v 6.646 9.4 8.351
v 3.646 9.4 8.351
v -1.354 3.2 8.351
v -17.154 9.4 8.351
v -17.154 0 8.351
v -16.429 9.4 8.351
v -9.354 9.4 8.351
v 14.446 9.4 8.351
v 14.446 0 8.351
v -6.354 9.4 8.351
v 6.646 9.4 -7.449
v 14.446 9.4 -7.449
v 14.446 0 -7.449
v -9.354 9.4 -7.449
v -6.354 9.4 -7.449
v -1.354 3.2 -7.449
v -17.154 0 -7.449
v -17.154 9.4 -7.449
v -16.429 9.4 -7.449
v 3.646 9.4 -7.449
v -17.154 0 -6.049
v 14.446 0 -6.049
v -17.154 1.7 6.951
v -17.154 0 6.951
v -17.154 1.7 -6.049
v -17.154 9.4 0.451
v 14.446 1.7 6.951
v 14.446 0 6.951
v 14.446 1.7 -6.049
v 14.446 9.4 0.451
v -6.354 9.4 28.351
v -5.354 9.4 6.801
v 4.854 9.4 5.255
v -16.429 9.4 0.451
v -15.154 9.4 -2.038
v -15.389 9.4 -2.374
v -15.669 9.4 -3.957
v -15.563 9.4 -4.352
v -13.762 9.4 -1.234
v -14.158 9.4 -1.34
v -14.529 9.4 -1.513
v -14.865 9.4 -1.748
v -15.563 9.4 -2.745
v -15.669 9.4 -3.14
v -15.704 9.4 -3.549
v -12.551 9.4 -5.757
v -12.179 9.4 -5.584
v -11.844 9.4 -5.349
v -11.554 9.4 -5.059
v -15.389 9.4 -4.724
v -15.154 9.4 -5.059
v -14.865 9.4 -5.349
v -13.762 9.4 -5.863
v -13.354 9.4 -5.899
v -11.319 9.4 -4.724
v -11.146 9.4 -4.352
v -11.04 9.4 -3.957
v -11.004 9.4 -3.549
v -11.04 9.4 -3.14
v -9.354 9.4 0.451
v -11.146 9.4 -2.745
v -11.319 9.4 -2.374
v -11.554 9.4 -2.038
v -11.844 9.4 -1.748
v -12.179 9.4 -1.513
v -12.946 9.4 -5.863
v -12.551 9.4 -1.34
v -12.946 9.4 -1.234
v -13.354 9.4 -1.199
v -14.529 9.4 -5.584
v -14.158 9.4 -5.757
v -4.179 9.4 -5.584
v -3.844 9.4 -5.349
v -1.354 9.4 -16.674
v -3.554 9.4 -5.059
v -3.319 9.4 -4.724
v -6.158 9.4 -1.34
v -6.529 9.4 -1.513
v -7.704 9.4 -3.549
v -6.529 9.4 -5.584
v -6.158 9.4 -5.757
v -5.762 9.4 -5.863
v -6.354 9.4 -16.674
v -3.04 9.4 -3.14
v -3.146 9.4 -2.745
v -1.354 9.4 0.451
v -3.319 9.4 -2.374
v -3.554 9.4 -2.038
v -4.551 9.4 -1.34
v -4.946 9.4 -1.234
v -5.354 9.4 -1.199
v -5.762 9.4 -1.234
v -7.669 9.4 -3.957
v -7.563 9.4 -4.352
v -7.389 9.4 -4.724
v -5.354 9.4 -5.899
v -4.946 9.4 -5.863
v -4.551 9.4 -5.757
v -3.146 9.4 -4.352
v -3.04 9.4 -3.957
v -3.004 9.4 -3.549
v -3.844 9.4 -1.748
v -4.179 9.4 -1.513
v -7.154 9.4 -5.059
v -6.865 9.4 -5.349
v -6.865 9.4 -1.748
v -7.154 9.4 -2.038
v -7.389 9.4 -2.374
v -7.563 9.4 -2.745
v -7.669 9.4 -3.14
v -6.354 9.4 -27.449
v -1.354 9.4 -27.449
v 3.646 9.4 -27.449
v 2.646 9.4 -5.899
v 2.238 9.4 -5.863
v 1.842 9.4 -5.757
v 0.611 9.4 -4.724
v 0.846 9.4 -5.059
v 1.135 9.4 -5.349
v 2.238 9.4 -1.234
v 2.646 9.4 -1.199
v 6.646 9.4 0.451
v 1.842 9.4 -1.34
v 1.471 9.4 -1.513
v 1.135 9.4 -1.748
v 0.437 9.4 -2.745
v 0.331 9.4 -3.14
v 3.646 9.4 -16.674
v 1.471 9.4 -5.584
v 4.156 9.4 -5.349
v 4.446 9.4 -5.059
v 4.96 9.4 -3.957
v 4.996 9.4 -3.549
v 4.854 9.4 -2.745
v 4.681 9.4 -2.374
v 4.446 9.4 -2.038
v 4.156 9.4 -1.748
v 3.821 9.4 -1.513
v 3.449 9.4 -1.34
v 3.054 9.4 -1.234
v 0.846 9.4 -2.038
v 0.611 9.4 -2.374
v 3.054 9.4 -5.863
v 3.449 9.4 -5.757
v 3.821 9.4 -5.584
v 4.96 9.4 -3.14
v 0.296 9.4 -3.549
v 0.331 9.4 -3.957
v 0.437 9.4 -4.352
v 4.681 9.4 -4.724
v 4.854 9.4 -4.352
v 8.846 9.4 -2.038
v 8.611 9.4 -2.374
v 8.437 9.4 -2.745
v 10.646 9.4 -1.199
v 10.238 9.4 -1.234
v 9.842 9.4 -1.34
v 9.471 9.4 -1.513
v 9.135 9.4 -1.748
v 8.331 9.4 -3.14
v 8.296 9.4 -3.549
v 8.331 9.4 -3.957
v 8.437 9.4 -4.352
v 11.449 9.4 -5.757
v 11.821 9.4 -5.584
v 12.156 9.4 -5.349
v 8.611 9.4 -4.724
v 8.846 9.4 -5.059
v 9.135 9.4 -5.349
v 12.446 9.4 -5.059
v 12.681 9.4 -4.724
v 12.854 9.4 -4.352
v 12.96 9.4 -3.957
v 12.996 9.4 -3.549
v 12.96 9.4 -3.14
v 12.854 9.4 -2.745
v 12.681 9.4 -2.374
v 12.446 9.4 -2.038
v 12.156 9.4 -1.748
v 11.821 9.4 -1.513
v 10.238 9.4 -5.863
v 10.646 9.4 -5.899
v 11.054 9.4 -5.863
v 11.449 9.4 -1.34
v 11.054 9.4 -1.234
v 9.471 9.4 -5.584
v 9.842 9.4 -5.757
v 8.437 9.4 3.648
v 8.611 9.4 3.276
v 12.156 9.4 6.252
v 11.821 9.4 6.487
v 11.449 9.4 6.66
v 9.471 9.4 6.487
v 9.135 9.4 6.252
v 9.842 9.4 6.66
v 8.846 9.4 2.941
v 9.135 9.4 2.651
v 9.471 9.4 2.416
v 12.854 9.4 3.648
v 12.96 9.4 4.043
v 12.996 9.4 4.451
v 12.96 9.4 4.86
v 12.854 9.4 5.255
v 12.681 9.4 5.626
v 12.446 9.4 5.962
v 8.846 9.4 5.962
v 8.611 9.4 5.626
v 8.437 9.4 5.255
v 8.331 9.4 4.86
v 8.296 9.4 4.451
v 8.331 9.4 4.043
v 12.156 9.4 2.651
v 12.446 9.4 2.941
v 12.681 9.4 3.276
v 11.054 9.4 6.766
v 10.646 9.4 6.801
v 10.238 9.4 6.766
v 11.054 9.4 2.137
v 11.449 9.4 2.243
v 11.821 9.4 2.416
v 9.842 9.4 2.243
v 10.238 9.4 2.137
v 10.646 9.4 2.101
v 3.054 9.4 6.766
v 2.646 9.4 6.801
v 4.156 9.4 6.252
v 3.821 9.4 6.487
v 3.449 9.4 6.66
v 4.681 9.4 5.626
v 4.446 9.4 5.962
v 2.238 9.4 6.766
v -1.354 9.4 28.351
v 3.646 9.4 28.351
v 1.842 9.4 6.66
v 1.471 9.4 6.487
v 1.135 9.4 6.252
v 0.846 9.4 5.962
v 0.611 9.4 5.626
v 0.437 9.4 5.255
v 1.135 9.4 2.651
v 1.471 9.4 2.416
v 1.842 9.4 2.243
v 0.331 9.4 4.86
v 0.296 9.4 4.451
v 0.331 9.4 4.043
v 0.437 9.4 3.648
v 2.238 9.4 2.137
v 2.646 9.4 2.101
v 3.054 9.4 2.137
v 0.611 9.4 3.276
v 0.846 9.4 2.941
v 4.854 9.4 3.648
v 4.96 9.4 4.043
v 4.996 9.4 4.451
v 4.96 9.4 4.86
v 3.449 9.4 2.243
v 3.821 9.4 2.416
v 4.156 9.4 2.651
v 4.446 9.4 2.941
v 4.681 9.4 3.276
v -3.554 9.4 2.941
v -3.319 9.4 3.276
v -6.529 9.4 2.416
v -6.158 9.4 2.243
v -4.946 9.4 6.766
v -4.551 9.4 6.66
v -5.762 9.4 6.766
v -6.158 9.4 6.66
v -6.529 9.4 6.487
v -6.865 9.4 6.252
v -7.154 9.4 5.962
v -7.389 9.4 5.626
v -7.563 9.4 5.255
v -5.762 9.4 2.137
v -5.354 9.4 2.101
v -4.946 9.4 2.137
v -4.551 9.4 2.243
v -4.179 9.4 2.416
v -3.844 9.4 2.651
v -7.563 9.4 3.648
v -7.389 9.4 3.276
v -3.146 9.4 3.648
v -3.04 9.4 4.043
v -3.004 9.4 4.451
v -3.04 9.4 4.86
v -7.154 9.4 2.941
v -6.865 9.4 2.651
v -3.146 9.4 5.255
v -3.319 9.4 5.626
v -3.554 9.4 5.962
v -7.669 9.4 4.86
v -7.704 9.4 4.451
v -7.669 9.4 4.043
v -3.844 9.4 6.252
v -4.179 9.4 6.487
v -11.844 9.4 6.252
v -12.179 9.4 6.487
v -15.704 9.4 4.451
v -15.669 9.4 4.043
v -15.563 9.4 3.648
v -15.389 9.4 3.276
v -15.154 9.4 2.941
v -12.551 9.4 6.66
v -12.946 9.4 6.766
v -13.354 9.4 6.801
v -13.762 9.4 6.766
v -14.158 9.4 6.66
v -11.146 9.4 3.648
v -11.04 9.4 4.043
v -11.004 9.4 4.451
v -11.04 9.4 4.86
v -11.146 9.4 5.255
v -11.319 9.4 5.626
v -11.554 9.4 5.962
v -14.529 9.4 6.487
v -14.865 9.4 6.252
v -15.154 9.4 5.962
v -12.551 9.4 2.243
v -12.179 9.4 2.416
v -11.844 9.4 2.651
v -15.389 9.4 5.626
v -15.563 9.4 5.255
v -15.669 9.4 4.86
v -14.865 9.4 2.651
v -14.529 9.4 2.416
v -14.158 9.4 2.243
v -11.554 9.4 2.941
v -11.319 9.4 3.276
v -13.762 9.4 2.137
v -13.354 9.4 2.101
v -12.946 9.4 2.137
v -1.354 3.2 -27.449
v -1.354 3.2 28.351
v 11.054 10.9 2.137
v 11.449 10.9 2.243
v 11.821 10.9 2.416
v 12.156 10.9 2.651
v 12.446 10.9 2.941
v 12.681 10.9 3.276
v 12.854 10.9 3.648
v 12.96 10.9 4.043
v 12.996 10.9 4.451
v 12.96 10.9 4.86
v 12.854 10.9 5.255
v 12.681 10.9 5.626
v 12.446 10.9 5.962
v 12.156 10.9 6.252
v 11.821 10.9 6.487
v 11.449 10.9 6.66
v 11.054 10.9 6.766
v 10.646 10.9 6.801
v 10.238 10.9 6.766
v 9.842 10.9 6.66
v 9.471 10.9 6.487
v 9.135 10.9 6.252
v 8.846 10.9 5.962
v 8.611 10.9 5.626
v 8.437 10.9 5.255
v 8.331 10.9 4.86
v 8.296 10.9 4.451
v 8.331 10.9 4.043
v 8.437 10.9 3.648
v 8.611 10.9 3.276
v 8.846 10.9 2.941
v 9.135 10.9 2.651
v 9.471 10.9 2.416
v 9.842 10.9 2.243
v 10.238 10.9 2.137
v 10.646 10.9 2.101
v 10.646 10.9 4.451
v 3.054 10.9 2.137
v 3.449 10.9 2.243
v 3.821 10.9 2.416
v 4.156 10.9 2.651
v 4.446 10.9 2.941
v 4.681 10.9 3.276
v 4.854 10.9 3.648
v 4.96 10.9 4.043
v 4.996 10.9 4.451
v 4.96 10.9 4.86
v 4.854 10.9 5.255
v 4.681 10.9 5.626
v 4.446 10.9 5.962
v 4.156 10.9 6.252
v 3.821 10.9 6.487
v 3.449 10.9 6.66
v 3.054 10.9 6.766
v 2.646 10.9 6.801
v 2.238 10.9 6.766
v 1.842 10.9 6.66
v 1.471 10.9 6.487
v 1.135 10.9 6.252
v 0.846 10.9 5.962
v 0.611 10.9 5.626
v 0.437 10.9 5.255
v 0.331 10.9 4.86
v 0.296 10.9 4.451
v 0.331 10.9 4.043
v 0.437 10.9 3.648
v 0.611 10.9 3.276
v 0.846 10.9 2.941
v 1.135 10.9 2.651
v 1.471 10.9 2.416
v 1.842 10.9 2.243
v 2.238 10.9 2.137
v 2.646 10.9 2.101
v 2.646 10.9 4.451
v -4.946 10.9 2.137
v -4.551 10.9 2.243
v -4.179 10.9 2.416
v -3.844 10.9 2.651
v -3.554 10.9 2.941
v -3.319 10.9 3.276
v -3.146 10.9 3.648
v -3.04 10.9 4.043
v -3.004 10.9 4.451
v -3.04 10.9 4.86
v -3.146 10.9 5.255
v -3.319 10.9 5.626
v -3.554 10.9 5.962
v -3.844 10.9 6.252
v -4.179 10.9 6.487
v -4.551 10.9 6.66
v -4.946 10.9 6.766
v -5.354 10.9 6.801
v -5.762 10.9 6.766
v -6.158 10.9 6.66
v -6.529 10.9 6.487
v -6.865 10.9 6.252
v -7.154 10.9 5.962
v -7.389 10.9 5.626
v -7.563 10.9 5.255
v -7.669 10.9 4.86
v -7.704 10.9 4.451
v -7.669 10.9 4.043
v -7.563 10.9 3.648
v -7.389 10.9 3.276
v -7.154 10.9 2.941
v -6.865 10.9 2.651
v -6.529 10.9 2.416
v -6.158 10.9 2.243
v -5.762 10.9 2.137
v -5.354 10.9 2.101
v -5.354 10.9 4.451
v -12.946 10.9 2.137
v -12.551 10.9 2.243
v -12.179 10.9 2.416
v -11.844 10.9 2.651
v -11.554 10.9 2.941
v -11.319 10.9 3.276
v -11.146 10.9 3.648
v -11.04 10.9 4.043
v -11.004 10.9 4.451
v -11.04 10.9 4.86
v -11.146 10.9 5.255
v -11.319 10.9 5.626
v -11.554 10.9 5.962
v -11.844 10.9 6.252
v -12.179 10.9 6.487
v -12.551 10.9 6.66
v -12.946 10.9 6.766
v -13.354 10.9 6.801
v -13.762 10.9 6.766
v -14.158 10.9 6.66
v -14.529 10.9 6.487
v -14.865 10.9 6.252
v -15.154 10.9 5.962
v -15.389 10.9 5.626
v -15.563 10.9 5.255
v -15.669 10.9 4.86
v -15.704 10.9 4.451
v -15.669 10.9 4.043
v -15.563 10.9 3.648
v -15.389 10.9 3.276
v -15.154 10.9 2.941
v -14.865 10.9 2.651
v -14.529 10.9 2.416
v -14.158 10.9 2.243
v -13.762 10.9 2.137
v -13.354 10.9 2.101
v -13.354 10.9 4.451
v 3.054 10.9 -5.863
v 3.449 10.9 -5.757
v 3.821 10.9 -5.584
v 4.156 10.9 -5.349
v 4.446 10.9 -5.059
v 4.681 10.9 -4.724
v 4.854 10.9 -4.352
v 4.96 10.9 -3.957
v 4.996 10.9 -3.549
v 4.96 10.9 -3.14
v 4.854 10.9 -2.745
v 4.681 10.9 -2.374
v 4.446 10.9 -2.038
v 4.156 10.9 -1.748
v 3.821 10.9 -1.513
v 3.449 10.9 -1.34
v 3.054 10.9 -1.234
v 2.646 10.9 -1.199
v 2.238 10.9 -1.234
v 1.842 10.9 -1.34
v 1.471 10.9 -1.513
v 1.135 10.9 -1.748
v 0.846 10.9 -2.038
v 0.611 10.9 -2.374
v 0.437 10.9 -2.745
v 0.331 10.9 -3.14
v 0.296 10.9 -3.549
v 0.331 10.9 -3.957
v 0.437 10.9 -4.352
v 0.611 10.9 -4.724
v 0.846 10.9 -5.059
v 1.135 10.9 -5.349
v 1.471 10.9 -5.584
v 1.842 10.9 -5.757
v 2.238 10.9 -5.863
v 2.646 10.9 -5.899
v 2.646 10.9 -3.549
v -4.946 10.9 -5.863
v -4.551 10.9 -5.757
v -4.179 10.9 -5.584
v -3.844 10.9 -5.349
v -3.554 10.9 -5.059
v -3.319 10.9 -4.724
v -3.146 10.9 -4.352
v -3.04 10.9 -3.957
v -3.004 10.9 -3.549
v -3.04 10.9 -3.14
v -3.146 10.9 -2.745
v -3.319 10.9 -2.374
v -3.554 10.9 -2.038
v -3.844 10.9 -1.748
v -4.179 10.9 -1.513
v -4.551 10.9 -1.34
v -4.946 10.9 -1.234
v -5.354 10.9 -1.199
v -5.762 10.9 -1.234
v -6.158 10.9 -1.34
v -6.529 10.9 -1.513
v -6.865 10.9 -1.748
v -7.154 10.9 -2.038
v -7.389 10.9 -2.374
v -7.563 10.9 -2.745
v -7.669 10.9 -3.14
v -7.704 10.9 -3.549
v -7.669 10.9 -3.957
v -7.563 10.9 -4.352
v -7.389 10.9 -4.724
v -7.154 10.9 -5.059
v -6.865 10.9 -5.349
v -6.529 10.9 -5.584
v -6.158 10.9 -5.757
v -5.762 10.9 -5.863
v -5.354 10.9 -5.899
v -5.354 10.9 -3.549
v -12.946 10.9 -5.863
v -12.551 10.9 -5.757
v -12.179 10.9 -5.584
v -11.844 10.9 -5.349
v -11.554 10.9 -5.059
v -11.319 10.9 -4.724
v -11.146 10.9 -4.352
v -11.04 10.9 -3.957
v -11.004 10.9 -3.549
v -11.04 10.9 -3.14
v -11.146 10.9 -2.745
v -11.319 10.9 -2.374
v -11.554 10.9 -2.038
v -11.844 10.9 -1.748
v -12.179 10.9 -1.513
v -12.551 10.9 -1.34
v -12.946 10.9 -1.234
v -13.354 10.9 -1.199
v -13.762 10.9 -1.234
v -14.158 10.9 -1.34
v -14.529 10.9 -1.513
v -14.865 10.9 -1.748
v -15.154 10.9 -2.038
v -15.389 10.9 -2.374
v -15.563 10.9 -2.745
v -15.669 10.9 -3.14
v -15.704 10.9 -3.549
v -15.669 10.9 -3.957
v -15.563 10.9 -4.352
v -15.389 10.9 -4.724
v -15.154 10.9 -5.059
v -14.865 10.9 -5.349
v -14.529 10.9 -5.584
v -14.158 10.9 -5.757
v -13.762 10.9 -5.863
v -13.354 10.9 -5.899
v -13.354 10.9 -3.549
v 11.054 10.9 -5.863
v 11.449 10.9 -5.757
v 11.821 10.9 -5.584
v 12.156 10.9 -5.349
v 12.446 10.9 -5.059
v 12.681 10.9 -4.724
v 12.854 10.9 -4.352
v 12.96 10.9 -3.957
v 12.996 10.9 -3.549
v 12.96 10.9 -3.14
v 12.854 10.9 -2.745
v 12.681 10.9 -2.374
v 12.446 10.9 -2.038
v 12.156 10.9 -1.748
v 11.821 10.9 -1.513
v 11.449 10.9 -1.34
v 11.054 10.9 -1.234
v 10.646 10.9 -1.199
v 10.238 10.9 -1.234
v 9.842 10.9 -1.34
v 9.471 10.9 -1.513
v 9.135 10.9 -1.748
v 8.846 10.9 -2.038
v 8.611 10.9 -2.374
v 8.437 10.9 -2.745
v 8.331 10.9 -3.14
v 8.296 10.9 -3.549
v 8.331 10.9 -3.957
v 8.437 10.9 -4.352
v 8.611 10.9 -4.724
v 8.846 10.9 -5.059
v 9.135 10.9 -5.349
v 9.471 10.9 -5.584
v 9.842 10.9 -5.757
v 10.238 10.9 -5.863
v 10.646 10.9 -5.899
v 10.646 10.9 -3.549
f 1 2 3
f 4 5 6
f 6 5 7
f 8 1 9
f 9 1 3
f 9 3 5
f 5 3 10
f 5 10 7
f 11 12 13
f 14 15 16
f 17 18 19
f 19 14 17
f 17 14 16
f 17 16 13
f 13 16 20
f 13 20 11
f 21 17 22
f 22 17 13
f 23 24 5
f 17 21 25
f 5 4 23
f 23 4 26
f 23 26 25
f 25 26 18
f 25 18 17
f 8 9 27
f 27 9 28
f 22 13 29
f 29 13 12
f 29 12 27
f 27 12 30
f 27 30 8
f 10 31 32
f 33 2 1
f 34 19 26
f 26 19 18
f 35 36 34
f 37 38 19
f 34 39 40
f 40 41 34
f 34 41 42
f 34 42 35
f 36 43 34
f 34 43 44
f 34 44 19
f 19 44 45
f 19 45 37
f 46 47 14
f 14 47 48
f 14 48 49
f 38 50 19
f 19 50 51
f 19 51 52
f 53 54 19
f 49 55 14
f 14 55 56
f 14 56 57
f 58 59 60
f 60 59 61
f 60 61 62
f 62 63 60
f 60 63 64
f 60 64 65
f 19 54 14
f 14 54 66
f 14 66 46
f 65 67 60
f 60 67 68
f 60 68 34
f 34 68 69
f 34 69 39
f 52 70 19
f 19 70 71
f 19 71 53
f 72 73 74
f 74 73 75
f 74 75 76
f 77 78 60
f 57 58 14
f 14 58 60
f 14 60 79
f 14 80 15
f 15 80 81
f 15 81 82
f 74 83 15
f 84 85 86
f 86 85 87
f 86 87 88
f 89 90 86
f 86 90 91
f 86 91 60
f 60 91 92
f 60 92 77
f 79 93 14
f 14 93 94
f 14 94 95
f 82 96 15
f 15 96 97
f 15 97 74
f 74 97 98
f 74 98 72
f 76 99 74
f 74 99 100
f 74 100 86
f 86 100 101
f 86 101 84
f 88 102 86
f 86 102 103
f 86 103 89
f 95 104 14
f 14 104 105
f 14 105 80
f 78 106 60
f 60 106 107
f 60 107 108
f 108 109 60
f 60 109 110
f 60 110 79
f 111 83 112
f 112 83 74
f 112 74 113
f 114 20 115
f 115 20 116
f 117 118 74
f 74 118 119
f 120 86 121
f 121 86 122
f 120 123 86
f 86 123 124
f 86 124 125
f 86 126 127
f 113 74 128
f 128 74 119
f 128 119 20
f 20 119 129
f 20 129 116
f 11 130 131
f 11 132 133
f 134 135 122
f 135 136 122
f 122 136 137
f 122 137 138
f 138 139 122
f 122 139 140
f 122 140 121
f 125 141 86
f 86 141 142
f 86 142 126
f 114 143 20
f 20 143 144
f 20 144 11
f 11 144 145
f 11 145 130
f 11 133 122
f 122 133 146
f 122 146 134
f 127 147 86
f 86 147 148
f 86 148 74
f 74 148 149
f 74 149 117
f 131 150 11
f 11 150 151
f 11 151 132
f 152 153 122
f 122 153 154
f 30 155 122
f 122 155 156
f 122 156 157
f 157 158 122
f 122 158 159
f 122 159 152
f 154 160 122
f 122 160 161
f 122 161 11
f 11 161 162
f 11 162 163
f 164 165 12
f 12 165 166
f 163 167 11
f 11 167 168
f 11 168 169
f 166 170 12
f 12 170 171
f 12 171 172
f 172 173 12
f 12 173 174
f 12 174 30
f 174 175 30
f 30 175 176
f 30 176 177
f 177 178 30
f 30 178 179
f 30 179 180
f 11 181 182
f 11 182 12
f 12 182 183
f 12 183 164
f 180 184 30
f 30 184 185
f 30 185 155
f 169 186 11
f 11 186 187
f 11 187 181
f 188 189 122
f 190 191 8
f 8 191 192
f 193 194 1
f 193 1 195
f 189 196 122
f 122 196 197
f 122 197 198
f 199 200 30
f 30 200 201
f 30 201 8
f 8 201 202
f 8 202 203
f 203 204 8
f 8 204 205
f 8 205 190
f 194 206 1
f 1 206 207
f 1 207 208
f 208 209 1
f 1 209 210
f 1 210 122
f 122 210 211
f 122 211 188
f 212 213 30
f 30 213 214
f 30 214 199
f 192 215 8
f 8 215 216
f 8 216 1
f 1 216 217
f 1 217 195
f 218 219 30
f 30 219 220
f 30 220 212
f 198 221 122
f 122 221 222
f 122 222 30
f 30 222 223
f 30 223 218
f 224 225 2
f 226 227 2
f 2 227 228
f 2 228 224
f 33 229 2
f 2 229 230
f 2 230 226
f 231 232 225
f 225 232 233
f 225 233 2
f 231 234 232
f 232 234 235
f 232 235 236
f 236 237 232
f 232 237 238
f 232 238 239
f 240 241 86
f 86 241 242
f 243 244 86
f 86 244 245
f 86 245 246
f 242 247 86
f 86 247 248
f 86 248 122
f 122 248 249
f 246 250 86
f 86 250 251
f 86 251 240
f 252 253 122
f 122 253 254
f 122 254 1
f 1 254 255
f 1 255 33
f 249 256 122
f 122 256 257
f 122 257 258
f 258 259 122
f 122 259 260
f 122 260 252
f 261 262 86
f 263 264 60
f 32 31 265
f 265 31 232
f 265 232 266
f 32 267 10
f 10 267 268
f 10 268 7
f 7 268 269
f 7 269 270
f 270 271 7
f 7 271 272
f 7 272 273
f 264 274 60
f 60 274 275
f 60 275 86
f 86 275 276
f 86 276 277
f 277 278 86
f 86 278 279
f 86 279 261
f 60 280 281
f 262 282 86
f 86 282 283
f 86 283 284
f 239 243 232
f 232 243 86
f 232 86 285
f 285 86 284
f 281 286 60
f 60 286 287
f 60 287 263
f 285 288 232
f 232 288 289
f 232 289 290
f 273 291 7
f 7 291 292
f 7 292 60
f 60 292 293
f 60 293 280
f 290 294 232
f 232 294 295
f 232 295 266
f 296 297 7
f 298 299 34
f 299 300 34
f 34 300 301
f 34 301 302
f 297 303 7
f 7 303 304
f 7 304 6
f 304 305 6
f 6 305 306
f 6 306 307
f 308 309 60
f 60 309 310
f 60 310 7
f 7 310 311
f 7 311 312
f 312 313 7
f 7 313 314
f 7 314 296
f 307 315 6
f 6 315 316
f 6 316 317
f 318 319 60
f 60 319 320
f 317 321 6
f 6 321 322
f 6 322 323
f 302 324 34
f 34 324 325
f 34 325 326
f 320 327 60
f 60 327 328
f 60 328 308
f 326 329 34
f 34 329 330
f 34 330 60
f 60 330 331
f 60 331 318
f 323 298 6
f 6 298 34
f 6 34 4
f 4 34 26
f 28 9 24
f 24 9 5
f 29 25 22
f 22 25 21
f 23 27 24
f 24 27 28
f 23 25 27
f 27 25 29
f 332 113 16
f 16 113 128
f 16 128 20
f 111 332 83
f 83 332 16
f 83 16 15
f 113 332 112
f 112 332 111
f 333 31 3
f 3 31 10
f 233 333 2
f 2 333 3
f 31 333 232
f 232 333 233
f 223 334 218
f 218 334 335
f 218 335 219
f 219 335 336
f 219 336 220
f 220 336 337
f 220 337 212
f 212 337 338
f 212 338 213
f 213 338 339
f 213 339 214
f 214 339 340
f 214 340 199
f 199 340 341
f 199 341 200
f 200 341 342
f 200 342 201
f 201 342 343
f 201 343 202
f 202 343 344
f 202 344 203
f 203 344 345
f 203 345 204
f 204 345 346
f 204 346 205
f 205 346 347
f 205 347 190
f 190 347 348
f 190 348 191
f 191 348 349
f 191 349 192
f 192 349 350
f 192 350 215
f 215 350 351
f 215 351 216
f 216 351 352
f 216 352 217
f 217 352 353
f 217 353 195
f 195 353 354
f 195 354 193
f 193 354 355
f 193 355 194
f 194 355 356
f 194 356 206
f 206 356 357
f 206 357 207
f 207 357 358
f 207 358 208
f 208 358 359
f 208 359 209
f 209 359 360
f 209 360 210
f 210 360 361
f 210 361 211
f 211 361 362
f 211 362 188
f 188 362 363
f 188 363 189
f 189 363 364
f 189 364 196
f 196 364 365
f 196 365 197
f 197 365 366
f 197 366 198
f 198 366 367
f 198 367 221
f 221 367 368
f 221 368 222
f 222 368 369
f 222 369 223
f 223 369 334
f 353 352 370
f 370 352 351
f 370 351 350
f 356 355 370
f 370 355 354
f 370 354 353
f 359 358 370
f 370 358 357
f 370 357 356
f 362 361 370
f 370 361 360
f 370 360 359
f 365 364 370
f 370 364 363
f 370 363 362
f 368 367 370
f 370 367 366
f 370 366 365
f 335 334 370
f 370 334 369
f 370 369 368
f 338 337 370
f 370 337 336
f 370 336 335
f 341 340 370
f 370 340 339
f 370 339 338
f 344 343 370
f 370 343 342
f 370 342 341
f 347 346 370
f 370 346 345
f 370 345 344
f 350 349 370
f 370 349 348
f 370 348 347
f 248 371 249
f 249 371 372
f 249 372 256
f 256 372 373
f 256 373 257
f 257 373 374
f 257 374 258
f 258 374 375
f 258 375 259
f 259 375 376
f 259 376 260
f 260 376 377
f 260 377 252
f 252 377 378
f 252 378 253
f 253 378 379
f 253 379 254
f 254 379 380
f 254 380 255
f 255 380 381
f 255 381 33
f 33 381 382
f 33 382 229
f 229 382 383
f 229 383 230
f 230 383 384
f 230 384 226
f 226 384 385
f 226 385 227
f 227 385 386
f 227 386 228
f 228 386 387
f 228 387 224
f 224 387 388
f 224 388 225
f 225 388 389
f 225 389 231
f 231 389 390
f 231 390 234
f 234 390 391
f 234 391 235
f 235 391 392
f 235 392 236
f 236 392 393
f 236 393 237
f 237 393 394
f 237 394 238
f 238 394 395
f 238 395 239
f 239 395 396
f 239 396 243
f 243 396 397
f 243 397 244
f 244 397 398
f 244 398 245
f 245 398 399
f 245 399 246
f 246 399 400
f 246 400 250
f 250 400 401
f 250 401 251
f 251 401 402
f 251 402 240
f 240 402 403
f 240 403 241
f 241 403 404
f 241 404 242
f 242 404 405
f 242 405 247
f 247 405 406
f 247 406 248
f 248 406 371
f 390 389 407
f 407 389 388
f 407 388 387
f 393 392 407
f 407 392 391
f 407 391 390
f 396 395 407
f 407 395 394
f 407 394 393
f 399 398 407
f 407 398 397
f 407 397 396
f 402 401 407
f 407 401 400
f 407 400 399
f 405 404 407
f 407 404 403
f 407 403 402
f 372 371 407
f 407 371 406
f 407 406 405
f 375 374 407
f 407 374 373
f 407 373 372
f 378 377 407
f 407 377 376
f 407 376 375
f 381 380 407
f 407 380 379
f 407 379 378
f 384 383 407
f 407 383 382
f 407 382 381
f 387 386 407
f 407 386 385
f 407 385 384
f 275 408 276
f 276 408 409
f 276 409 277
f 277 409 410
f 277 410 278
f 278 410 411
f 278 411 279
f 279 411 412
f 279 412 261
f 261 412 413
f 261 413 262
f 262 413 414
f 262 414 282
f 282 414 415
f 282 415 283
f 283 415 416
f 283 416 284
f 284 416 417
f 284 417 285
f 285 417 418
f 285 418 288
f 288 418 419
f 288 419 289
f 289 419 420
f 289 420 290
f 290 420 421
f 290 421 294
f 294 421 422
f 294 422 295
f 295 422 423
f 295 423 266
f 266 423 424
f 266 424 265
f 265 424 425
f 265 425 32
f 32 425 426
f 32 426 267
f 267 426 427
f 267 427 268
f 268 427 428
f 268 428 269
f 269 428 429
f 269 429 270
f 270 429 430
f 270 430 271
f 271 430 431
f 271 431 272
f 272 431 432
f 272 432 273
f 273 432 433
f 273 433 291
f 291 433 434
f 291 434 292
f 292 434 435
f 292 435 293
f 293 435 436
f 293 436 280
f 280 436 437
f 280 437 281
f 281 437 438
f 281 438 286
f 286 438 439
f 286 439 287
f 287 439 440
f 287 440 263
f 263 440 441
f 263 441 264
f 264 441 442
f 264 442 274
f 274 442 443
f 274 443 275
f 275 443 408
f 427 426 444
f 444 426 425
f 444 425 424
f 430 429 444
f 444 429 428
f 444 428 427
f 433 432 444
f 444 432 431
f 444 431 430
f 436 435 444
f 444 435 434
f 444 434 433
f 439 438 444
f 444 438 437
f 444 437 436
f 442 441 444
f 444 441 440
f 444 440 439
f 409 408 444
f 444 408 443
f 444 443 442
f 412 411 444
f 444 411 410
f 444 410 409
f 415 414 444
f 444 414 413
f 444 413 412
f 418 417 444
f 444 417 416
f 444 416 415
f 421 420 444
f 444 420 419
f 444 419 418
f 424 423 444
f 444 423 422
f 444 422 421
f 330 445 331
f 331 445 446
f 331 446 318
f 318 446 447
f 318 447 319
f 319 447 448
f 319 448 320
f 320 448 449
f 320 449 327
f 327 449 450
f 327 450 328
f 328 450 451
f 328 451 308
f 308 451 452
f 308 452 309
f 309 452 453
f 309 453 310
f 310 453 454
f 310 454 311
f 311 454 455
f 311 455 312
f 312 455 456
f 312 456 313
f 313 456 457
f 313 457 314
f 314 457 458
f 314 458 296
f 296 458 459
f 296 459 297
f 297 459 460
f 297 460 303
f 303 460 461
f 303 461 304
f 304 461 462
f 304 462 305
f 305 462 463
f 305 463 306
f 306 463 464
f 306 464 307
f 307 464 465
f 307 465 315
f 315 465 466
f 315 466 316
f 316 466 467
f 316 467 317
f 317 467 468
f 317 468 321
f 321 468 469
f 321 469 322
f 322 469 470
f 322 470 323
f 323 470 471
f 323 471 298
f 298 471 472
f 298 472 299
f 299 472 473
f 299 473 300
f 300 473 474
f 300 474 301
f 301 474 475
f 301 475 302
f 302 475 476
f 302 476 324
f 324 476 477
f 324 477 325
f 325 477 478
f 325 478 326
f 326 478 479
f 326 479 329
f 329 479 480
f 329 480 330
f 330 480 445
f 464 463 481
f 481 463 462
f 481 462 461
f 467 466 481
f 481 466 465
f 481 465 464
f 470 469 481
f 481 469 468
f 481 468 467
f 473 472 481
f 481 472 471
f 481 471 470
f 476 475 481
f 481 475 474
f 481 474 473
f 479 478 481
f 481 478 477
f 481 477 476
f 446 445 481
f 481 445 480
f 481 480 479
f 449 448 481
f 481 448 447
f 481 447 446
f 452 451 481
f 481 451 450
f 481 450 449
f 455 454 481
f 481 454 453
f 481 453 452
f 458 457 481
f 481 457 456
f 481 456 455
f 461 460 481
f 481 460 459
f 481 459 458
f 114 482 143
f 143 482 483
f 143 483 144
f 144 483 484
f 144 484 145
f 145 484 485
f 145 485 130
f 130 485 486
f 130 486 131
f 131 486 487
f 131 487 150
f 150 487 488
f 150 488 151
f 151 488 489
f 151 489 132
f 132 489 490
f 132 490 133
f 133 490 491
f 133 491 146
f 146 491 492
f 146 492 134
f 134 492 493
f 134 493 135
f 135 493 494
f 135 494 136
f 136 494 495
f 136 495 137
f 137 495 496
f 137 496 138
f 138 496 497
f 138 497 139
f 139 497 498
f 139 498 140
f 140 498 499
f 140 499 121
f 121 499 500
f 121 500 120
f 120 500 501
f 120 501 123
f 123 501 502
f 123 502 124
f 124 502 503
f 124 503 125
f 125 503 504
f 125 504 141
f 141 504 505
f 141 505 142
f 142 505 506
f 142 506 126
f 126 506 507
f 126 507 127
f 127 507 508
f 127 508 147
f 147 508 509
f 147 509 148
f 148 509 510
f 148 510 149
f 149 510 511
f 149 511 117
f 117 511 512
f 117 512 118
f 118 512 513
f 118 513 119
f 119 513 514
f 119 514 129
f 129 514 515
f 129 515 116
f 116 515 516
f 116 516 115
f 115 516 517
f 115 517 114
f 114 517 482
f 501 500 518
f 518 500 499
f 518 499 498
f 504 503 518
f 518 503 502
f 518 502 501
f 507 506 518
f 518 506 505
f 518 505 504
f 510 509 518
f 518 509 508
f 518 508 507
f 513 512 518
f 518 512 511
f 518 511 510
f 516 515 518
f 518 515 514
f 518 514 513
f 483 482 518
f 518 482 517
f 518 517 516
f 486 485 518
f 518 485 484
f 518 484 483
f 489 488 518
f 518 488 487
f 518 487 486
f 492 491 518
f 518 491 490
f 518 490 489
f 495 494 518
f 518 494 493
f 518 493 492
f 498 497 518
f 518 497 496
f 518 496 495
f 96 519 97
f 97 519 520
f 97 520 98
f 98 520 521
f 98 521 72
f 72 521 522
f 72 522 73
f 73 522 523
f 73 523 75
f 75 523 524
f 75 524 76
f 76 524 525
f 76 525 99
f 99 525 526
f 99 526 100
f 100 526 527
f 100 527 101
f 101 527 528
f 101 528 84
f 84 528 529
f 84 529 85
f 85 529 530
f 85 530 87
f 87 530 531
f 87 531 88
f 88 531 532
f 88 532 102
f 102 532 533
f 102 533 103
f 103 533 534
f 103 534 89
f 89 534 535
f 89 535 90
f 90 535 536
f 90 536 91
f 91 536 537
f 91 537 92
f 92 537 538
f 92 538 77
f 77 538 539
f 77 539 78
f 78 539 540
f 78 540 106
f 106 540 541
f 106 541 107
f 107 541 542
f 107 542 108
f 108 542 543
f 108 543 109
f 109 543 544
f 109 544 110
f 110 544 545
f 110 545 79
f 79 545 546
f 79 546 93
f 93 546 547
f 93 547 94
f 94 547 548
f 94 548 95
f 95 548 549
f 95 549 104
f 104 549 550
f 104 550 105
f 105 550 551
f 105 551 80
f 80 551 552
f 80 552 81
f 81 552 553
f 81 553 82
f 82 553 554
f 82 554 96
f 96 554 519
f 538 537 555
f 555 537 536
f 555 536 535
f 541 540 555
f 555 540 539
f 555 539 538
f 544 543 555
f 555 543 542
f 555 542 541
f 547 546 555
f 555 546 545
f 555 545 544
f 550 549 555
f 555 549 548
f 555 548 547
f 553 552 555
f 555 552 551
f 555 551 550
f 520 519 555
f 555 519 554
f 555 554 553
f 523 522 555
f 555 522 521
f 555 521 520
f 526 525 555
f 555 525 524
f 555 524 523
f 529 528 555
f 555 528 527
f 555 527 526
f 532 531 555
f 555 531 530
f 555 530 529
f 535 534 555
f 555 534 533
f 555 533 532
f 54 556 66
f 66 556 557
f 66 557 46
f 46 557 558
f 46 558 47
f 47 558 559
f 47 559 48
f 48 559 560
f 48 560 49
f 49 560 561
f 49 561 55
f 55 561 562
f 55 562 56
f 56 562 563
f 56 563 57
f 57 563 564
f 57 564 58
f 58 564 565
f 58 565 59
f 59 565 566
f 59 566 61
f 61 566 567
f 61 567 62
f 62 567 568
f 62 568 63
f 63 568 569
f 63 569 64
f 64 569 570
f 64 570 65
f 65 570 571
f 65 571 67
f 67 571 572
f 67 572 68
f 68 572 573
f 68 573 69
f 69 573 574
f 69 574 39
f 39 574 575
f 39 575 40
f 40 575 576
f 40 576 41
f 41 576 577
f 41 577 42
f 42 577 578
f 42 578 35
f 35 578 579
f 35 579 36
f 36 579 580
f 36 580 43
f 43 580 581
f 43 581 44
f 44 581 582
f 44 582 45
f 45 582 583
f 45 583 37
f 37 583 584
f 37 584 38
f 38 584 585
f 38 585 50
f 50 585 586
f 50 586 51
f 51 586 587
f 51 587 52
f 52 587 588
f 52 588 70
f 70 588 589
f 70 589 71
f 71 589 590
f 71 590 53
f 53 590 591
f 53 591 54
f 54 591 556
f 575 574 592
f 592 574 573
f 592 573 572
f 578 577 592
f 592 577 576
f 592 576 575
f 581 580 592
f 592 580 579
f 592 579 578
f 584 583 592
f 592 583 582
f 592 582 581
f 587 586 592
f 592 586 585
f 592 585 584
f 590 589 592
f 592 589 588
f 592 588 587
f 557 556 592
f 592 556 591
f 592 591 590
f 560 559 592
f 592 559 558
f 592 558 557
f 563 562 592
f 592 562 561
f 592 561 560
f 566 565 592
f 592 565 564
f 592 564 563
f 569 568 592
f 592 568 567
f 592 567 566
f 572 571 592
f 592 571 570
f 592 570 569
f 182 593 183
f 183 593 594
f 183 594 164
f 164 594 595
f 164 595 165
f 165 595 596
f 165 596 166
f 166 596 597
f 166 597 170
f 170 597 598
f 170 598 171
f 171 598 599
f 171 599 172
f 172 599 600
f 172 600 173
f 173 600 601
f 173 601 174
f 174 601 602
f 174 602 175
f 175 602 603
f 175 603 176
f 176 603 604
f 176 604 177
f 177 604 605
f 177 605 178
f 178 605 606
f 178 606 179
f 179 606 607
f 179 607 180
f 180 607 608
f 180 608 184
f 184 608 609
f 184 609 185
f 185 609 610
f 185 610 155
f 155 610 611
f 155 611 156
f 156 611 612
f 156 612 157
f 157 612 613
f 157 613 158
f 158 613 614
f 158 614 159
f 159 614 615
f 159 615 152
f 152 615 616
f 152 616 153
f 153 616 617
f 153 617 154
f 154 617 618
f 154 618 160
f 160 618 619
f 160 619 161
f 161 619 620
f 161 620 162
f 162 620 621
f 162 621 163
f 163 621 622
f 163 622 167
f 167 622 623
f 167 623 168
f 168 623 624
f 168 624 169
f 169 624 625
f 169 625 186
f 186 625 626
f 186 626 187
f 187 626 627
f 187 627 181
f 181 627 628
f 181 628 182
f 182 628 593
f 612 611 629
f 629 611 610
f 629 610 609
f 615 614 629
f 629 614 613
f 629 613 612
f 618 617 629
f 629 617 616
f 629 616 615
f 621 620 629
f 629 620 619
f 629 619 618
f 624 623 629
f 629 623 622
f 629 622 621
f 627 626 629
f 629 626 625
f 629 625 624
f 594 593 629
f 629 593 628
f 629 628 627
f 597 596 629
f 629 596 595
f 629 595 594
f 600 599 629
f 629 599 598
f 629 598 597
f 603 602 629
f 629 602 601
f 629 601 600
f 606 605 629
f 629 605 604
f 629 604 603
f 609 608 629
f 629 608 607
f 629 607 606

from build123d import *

# Parameters (mm, degrees)
SKETCH1_W           = 31.6
SKETCH1_H           = 15.8
BOSS_EXTRUDE1_DEPTH = 9.4
SKETCH2_W           = 31.6
SKETCH2_H           = 13
CUT_EXTRUDE1_DEPTH  = 1.7
BOSS_EXTRUDE2_DEPTH = 20
BOSS_EXTRUDE3_DEPTH = 20
SKETCH5_R           = 2.35
BOSS_EXTRUDE4_DEPTH = 1.5


with BuildPart() as part:
    # Sketch1 → Boss-Extrude1 (new body)
    with BuildSketch(Plane(origin=(0, 0, 0), x_dir=(1, 0, 0), z_dir=(0, 1, 0))):
        with Locations((-1.354285714, -0.451428571)):
            Rectangle(SKETCH1_W, SKETCH1_H)
    extrude(amount=BOSS_EXTRUDE1_DEPTH)

    # Sketch2 → Cut-Extrude1 (cut)
    with BuildSketch(Plane(origin=(0, 0, 0), x_dir=(-1, 0, 0), z_dir=(0, -1, 0))):
        with Locations((1.354285714, -0.451428571)):
            Rectangle(SKETCH2_W, SKETCH2_H)
    extrude(amount=-CUT_EXTRUDE1_DEPTH, mode=Mode.SUBTRACT)

    # Sketch3 → Boss-Extrude2 (add)
    with BuildSketch(Plane(origin=(0, 0, -7.448571429), x_dir=(-1, 0, 0), z_dir=(0, 0, -1))):
        Polygon((-3.645714286, 9.4), (1.354285714, 3.2), (6.354285714, 9.4), align=None)
    extrude(amount=BOSS_EXTRUDE2_DEPTH)

    # Sketch4 → Boss-Extrude3 (add)
    with BuildSketch(Plane.XY.offset(8.351428571)):
        Polygon((-6.354285714, 9.4), (-1.354285714, 3.2), (3.645714286, 9.4), align=None)
    extrude(amount=BOSS_EXTRUDE3_DEPTH)

    # Sketch5 → Boss-Extrude4 (add)
    with BuildSketch(Plane(origin=(0, 9.4, 0), x_dir=(1, 0, 0), z_dir=(0, 1, 0))):
        with Locations(Location((10.645714286, -4.451428571, 0), (0, 0, 270))):
            Circle(SKETCH5_R)
        with Locations(Location((2.645714286, -4.451428571, 0), (0, 0, 270))):
            Circle(SKETCH5_R)
        with Locations(Location((-5.354285714, -4.451428571, 0), (0, 0, 270))):
            Circle(SKETCH5_R)
        with Locations(Location((-13.354285714, -4.451428571, 0), (0, 0, 270))):
            Circle(SKETCH5_R)
        with Locations(Location((2.645714286, 3.548571429, 0), (0, 0, 270))):
            Circle(SKETCH5_R)
        with Locations(Location((-5.354285714, 3.548571429, 0), (0, 0, 270))):
            Circle(SKETCH5_R)
        with Locations(Location((-13.354285714, 3.548571429, 0), (0, 0, 270))):
            Circle(SKETCH5_R)
        with Locations(Location((10.645714286, 3.548571429, 0), (0, 0, 270))):
            Circle(SKETCH5_R)
    extrude(amount=BOSS_EXTRUDE4_DEPTH)


solid = part.part
